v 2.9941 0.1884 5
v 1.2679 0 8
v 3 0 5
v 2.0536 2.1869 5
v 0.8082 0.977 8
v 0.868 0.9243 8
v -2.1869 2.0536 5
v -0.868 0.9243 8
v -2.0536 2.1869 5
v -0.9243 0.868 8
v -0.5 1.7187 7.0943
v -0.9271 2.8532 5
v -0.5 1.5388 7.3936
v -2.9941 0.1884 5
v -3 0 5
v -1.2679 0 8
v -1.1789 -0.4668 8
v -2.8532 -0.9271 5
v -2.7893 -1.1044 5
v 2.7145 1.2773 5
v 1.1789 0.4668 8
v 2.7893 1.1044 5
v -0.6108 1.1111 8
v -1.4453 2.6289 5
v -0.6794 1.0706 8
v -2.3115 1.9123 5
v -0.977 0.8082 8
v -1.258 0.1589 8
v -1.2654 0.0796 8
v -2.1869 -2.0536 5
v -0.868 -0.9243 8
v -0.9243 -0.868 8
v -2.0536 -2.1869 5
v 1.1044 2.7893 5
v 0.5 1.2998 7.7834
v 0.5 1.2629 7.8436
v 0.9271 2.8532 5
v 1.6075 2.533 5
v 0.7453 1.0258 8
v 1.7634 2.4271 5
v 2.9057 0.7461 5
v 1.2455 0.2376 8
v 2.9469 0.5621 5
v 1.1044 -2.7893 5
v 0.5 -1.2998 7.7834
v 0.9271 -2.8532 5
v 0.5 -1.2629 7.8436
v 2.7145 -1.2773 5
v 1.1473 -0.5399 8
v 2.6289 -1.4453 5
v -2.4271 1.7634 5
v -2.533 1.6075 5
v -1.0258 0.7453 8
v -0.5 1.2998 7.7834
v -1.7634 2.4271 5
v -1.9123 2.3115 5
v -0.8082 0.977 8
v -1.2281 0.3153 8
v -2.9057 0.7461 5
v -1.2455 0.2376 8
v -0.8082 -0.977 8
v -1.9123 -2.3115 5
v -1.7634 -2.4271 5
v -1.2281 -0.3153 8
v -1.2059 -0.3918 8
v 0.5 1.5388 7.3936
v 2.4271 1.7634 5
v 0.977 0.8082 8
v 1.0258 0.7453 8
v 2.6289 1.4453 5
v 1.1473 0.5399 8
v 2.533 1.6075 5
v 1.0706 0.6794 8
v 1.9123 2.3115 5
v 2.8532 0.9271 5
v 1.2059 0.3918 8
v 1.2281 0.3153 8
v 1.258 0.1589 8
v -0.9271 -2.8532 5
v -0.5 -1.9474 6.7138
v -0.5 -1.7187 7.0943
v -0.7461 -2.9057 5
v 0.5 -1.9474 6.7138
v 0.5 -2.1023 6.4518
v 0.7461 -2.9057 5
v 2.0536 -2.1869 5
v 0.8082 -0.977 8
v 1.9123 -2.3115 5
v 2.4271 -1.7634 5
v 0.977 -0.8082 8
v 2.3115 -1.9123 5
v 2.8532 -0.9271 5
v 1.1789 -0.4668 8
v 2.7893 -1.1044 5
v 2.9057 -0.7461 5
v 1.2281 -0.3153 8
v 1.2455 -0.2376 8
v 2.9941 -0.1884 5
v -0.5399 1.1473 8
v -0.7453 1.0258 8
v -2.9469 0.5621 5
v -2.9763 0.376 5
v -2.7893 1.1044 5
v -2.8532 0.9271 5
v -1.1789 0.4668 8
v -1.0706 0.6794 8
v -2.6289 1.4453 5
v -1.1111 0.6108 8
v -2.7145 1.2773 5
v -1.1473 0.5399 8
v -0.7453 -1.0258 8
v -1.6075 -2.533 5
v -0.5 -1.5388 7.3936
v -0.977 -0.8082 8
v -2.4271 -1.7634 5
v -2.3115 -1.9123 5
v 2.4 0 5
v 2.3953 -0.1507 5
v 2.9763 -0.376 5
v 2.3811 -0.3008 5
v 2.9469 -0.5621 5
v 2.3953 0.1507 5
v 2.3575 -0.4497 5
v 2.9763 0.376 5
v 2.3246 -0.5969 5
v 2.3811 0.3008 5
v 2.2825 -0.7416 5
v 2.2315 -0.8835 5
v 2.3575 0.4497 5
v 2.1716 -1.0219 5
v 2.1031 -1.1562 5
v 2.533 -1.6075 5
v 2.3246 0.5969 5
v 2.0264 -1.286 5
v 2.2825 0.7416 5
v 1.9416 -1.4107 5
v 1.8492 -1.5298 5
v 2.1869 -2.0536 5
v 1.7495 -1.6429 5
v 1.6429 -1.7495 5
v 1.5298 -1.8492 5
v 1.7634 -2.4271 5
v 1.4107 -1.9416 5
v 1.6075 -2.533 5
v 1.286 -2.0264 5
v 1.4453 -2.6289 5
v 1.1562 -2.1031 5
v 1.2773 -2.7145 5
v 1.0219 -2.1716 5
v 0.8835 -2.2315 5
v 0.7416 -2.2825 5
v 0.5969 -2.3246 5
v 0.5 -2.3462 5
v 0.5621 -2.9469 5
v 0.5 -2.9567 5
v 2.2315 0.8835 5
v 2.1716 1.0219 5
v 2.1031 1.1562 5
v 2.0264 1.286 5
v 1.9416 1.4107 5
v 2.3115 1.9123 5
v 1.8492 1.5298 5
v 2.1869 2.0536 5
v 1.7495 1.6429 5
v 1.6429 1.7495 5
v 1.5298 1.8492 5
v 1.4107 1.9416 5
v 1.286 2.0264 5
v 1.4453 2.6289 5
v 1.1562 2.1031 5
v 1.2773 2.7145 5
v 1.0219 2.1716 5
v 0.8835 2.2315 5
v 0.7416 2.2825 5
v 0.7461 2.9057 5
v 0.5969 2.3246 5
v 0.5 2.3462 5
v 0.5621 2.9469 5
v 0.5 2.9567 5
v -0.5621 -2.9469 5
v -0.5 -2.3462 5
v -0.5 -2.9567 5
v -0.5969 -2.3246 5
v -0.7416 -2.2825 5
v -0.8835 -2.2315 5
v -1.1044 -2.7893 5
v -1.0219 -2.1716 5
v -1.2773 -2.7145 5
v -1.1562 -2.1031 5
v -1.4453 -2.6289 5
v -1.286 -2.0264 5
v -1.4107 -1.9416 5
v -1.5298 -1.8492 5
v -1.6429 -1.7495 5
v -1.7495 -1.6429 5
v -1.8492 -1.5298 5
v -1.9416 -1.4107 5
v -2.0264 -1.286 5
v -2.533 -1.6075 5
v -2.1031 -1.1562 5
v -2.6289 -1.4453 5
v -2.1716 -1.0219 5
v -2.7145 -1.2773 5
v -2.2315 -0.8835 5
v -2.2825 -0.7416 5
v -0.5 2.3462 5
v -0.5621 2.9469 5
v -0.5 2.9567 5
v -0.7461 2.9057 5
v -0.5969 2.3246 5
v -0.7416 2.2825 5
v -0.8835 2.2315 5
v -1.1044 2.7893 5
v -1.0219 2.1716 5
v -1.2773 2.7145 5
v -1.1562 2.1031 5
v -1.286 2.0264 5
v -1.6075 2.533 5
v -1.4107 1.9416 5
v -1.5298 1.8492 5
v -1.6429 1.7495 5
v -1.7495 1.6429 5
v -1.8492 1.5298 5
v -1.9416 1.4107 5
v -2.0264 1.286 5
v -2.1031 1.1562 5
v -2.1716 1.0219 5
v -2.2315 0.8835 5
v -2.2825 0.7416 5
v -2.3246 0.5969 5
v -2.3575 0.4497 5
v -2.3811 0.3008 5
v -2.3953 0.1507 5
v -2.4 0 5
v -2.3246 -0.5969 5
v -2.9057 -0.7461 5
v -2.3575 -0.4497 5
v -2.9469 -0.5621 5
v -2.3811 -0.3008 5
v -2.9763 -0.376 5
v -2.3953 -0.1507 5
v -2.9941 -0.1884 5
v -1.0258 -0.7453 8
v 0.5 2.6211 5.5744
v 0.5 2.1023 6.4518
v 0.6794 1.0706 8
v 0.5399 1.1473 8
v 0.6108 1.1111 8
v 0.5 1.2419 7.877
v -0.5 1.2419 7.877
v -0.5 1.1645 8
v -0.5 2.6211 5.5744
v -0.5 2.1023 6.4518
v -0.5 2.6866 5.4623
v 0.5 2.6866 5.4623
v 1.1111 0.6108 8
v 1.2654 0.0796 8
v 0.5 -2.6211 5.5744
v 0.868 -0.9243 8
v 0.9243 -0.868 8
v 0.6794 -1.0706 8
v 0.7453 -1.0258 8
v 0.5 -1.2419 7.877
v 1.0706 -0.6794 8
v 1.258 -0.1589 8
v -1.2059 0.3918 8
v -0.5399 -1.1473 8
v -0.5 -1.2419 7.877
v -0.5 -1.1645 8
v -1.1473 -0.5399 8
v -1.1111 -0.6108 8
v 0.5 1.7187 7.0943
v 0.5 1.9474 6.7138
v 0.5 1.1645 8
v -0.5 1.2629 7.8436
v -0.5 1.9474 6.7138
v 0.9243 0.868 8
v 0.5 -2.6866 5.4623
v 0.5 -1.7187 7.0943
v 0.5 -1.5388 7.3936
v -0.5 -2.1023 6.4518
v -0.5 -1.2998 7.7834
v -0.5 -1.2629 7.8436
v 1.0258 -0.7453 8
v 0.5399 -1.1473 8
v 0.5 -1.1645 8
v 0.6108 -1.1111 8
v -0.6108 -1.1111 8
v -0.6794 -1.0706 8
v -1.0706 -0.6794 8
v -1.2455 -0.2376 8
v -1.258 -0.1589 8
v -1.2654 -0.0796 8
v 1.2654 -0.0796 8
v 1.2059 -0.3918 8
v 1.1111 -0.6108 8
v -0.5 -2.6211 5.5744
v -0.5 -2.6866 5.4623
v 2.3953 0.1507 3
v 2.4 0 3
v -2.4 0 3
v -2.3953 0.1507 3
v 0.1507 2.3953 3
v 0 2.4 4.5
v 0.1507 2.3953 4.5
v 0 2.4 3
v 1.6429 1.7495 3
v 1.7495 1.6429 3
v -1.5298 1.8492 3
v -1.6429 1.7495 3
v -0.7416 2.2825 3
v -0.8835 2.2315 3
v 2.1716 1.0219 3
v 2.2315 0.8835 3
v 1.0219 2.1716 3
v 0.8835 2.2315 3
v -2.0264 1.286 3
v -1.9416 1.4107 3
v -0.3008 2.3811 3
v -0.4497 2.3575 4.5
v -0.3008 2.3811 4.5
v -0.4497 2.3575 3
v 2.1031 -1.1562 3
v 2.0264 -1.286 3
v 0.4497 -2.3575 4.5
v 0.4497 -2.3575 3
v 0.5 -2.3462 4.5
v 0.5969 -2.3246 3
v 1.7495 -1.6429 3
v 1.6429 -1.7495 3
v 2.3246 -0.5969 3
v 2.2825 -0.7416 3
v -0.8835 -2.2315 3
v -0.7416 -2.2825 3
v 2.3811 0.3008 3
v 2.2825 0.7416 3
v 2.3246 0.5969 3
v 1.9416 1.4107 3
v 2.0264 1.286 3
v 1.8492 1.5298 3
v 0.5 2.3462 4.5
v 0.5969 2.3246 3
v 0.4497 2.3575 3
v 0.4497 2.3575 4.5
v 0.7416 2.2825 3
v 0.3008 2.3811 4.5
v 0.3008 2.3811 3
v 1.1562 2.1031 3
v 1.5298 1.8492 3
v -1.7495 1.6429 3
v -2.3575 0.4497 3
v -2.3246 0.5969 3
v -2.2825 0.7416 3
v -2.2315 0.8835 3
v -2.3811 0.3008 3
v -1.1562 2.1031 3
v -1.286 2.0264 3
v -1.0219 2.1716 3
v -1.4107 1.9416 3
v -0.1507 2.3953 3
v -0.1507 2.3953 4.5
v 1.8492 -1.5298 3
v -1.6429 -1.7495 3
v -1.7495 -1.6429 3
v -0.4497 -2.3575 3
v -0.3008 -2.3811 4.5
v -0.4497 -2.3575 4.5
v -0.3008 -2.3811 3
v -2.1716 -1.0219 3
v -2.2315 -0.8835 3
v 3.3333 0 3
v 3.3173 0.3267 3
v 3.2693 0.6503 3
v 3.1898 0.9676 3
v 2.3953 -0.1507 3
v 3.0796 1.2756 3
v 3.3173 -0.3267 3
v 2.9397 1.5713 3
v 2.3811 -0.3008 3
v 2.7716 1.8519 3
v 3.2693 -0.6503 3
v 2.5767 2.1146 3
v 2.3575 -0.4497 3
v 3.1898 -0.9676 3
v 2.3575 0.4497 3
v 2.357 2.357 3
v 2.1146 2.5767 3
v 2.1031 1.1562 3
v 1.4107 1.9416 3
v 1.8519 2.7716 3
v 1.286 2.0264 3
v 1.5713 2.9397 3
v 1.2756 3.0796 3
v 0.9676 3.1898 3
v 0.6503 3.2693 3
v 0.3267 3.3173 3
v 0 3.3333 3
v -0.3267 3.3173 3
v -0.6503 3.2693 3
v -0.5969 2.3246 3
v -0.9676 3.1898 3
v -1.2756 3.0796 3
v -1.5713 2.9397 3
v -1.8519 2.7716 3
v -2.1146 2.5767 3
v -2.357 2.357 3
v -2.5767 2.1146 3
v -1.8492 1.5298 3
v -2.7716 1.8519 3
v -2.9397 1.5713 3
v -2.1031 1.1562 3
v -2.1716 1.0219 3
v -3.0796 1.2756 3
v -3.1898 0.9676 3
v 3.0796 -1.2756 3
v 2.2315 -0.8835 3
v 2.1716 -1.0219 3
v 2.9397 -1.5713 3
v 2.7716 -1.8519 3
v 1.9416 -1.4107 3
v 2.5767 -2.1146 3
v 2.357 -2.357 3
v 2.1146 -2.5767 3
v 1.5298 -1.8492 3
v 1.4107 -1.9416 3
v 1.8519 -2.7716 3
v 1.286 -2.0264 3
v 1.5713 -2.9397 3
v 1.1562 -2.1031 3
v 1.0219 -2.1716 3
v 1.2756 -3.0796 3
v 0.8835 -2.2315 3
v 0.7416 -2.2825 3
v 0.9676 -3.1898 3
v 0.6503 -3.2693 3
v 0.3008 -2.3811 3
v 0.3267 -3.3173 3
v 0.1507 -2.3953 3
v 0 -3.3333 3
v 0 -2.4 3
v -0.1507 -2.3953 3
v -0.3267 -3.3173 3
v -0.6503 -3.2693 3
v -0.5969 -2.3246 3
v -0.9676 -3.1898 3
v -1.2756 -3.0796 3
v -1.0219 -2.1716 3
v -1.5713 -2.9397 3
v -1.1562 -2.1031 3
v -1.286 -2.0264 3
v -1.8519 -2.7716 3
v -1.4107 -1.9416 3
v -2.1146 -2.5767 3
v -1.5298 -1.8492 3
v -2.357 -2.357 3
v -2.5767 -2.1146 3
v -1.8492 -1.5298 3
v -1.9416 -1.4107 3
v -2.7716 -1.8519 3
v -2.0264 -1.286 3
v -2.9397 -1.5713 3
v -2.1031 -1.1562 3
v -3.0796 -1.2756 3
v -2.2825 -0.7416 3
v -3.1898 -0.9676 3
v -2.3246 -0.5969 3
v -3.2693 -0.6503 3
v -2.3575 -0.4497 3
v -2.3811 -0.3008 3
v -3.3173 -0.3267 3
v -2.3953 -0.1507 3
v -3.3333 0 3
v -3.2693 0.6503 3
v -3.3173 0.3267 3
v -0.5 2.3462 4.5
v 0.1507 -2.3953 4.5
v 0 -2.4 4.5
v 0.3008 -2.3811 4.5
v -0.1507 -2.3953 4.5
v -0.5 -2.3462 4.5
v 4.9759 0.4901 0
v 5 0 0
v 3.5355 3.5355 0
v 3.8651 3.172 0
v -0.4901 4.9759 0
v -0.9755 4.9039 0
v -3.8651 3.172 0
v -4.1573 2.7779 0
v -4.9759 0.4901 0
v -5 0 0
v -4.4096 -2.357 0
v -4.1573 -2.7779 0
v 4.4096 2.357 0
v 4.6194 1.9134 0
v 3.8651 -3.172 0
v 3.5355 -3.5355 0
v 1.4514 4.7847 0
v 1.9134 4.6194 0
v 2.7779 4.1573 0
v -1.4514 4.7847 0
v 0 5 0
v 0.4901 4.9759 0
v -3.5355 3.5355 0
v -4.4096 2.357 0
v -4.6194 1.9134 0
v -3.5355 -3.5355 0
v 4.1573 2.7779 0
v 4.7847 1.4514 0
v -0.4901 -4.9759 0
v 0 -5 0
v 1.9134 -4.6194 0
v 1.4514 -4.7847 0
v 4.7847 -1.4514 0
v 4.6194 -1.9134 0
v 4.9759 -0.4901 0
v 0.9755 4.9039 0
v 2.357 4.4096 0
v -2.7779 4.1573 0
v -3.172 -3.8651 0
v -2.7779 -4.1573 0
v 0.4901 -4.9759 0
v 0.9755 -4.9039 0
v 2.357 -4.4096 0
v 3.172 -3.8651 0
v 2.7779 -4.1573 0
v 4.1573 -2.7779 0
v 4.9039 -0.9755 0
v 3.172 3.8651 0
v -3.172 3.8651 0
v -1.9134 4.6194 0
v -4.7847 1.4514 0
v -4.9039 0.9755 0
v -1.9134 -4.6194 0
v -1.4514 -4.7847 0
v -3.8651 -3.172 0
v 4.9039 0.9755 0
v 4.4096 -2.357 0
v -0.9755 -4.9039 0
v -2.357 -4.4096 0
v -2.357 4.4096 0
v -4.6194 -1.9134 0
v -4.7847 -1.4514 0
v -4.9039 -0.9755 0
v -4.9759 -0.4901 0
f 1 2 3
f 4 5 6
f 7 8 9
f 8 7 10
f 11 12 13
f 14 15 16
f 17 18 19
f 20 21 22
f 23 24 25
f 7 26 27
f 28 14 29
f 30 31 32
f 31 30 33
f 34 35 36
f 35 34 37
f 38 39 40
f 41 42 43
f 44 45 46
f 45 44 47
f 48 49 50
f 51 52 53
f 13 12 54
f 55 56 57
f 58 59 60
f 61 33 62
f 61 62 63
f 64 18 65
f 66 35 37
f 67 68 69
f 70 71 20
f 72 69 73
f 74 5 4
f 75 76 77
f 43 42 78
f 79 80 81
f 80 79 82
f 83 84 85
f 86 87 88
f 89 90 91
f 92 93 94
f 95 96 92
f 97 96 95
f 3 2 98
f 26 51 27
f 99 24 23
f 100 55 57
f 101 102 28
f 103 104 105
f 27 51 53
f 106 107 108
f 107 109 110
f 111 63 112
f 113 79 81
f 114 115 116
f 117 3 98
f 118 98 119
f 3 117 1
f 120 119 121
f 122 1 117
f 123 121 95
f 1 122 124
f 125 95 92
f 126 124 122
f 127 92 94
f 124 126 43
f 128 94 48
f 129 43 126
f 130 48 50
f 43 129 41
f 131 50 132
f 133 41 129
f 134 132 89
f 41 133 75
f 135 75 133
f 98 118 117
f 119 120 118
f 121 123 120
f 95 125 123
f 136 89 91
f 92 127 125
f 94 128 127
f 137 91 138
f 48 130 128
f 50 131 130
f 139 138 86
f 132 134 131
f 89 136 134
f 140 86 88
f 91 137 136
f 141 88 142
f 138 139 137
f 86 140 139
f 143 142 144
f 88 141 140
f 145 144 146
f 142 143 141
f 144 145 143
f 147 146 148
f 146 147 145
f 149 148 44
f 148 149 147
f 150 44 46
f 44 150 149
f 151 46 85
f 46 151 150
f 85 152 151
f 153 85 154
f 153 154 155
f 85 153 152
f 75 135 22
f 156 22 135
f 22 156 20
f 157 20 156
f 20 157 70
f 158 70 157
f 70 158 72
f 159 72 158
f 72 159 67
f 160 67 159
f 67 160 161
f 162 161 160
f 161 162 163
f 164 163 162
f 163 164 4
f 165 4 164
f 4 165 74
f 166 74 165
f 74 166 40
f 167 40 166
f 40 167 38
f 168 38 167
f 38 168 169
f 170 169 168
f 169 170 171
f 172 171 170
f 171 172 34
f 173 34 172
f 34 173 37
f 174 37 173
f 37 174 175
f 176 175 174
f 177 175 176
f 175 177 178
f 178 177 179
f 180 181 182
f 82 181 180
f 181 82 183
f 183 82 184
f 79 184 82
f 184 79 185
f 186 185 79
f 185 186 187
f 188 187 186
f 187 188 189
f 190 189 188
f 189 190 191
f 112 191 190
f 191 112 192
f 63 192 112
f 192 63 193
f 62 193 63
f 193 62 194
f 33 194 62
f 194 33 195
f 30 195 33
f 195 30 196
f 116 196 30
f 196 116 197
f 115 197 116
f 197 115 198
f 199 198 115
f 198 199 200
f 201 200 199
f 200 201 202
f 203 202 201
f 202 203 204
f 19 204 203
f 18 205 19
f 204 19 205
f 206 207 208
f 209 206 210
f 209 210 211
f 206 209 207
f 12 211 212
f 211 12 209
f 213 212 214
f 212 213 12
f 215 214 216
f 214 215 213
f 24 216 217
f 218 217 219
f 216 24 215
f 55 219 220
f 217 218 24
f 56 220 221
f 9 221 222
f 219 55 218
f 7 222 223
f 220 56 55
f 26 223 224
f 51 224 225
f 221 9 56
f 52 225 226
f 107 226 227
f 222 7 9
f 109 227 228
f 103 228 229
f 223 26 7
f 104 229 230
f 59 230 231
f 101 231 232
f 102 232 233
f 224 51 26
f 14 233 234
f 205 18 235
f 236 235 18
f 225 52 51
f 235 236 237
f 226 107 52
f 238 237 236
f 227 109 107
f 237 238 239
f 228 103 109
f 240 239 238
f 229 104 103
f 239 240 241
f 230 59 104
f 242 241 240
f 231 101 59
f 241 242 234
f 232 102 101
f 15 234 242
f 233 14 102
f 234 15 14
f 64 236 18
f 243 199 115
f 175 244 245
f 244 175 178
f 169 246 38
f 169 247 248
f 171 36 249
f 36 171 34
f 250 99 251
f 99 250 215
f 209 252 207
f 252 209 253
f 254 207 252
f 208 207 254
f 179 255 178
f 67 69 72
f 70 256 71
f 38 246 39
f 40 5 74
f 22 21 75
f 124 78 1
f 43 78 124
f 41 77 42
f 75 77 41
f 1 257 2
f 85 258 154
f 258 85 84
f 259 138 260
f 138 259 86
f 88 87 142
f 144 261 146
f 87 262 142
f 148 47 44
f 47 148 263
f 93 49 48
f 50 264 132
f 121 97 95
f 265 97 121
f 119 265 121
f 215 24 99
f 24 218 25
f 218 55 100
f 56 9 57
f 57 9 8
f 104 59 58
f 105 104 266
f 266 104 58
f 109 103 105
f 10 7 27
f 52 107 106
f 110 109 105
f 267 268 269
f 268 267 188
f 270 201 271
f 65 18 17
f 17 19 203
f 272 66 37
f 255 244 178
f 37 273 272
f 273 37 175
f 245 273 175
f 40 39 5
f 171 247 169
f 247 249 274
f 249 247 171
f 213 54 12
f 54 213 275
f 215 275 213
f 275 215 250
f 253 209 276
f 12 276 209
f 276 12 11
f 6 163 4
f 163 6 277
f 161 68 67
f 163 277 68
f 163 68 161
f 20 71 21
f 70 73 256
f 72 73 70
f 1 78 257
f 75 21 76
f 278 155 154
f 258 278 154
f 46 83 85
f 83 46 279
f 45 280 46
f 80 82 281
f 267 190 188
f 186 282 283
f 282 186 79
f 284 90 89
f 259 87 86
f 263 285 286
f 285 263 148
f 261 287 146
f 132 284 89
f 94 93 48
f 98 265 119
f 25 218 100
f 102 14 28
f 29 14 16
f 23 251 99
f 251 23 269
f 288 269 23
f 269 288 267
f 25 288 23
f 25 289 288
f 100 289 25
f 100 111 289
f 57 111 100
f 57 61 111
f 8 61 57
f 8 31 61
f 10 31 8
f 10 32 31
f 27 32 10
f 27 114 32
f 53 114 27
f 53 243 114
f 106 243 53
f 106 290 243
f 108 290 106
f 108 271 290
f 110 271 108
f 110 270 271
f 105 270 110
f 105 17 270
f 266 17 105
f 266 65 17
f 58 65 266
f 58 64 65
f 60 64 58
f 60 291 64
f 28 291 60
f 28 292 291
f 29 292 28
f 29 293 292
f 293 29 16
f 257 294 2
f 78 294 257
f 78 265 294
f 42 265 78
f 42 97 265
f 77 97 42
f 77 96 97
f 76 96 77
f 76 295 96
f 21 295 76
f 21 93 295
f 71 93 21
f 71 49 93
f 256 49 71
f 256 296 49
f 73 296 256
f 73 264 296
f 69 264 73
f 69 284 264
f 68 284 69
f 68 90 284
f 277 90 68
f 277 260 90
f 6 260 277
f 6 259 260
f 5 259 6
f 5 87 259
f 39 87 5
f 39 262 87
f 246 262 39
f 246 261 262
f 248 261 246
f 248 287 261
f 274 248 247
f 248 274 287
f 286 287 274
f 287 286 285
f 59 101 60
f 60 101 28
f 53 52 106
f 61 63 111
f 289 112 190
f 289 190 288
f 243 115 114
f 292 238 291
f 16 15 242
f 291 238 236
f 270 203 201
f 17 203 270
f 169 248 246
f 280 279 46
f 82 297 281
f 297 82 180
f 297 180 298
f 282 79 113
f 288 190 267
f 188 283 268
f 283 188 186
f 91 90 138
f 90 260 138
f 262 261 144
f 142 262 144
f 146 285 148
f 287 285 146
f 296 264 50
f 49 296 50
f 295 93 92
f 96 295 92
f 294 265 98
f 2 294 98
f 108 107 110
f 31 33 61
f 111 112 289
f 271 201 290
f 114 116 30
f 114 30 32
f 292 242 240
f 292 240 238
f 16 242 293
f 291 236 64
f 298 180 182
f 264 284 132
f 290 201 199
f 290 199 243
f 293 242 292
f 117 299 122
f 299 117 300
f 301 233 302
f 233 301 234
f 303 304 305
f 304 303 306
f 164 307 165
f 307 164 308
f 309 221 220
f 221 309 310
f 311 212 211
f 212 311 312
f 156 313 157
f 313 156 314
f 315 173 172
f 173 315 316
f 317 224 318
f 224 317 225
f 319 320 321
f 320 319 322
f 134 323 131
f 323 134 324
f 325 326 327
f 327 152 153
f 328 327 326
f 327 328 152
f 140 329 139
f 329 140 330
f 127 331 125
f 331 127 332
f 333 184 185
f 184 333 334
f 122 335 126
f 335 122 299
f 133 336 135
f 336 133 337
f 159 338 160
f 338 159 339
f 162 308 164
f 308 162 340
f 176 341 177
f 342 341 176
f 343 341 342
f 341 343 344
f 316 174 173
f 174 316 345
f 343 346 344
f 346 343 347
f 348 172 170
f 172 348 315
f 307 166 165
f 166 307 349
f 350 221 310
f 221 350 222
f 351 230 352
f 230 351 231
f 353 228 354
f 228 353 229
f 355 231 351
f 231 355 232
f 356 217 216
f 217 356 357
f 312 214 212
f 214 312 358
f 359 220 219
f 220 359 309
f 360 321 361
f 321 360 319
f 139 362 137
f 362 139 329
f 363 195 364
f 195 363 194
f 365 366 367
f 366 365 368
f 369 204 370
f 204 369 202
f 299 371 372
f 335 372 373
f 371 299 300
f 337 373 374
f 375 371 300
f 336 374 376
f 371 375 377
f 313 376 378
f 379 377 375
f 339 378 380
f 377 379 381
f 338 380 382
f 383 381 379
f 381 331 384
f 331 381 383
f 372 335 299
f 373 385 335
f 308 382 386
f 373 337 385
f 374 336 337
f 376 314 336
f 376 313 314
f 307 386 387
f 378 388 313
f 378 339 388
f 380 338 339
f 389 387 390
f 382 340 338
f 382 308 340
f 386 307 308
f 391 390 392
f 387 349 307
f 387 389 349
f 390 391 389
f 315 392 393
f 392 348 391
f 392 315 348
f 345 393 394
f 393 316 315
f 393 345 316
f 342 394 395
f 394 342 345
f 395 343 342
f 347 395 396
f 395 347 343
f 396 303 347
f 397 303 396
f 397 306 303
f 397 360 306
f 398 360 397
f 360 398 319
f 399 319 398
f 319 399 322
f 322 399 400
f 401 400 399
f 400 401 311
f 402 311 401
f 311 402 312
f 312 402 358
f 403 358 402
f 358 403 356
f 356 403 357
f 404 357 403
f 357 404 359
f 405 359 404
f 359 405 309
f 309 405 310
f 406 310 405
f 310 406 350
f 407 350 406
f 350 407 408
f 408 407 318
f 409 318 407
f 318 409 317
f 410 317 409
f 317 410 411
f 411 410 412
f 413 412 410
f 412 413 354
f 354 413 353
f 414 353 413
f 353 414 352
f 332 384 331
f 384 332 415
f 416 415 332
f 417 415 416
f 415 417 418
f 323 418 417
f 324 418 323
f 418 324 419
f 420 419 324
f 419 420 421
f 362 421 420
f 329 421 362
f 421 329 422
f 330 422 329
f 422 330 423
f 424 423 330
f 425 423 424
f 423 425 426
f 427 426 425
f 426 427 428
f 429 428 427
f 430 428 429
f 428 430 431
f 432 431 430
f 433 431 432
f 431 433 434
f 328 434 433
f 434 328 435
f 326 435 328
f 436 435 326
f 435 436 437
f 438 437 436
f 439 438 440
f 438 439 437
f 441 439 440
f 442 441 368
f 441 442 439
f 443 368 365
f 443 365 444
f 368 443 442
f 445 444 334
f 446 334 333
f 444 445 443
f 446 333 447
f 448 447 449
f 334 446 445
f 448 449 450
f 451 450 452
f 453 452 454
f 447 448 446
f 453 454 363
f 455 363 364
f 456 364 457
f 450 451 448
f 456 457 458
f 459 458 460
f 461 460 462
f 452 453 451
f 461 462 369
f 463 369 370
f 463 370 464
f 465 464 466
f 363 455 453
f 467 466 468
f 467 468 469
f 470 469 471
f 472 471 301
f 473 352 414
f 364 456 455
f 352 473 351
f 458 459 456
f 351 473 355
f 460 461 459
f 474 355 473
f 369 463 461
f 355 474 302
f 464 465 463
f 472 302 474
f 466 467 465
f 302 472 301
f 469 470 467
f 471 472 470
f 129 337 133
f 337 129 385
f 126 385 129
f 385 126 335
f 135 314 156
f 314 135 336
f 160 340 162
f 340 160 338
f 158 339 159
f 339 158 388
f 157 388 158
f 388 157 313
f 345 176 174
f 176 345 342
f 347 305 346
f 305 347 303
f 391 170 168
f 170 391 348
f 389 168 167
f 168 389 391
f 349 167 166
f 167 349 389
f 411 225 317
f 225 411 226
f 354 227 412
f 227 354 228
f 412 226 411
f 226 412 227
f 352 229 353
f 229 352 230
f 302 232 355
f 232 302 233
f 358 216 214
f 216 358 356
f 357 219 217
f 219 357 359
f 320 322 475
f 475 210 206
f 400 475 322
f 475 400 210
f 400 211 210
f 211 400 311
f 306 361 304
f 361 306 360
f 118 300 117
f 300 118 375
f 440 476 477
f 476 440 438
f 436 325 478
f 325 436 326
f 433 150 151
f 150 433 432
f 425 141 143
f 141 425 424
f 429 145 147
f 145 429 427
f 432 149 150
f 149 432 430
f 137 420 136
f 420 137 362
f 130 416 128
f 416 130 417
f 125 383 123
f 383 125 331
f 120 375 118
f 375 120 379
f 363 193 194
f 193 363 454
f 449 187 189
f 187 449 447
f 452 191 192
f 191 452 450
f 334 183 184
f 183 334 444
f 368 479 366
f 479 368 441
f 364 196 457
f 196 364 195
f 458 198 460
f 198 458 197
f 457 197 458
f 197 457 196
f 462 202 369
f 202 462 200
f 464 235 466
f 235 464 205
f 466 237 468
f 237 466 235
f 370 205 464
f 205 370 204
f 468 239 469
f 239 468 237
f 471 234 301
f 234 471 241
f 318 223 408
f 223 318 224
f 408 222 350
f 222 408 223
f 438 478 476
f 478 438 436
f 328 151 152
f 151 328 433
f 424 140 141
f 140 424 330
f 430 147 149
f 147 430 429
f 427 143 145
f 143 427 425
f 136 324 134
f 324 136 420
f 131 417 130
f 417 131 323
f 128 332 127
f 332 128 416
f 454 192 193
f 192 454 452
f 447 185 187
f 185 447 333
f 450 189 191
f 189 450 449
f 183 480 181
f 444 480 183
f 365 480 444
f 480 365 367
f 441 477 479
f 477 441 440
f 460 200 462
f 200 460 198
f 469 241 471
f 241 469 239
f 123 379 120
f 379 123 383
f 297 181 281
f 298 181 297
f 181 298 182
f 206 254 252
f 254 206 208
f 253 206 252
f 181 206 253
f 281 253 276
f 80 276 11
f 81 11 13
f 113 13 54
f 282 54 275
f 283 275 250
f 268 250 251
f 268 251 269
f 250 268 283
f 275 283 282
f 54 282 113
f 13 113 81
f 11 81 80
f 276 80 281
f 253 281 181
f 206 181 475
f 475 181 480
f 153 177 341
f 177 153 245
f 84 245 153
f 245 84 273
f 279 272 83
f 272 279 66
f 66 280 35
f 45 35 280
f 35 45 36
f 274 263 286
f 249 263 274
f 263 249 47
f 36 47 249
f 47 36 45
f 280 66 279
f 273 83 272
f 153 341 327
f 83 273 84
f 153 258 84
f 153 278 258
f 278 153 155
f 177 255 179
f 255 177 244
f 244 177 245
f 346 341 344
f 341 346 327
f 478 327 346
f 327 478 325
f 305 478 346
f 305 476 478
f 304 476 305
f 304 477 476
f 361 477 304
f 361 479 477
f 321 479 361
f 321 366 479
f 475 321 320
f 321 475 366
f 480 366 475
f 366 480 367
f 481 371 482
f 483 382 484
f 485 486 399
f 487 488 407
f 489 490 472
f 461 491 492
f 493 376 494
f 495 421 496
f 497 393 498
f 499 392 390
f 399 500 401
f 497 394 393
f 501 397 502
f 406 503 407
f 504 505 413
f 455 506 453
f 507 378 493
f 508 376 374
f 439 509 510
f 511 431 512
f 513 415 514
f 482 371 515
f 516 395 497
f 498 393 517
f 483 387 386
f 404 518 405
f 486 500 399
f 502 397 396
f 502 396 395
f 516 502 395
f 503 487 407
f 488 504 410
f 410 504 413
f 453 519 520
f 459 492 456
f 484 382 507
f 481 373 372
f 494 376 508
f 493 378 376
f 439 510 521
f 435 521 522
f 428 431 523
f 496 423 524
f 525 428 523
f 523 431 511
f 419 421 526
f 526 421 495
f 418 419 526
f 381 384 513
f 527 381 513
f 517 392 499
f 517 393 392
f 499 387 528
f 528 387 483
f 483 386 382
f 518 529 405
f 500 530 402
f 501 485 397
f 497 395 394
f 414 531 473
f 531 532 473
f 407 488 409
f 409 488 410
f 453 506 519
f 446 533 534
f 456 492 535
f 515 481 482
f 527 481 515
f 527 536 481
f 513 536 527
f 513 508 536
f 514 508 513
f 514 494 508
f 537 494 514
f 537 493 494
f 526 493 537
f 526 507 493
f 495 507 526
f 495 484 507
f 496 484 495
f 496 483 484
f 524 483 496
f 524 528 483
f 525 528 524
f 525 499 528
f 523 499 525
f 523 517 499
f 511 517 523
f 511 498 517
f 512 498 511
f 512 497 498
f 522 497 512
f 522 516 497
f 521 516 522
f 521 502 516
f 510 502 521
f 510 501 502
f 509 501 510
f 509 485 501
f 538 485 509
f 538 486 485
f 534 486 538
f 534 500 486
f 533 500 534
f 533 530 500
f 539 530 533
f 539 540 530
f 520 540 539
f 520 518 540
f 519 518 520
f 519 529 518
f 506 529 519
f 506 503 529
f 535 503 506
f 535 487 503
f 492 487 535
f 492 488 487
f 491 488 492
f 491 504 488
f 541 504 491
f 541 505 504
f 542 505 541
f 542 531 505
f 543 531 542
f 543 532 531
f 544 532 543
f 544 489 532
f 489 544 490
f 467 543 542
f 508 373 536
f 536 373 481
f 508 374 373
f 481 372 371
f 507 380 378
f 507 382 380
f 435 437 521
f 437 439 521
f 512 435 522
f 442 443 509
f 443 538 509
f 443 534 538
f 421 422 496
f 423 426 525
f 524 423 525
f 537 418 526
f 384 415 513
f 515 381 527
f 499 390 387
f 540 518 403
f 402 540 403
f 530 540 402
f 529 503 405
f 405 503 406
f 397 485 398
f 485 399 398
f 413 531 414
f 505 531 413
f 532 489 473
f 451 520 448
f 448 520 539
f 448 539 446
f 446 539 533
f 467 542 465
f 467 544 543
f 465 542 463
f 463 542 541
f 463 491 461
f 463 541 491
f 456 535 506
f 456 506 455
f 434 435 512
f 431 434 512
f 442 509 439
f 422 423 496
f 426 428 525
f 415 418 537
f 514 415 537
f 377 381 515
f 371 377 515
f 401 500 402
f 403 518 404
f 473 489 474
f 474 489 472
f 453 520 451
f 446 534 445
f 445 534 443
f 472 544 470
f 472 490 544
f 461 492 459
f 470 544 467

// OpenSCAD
// file: ../snapfit.scad
// Adapted by Cameron K. Brooks on 2024-01-26 from the following source:
// https://www.thingiverse.com/thing:1799553/files

def_dia = 3; // Snap fit dia
def_lip = 0.75; // Snap fit def_lip (adds to dia)
def_col_h = def_dia * 2;
// def_col_h = 5;    // Snap fit Mini column height

def_slot_ratio = 0.7; // Slot ratio

def_col_tol = 0.1; // Column Tolerance
def_neg_tol = 0.5; // Tolerance for the Neagtive Snapfit

$fn = 100;

module snapfit(
  dia = def_dia,
  lip = def_lip,
  col_h = def_col_h,
  col_tol = def_col_tol,
  slot_ratio = def_slot_ratio,
  thickness = undef
) {
  z_fight = $preview ? 0.05 : 0.0; // Z offset for preview
  // Calculated Snapfit Parameters
  head_h = (dia + lip) / 2; // Snap fit height
  head_r1 = (dia + lip) / 2; // Snap fit radius 1
  head_r2 = calculateRadFromAngle(180 - 60, head_r1, head_h); // Snap fit radius 2
  col_r = dia / 2; // Mini column radius

  difference() {
    union() {
      translate([0, 0, col_h + head_h / 2])
        cylinder(r1=head_r1, r2=head_r2, h=head_h, center=true);
      // snapfit head

      translate([0, 0, col_h / 2]) cylinder(r=col_r - col_tol, h=col_h, center=true); // Mini column

      if (!is_undef(thickness)) {
        // optional snapfit foot
        translate([0, 0, col_h - head_h - thickness + (head_h) / 2]) cylinder(
            r1=col_r - col_tol, r2=col_r - col_tol + lip, h=head_h, center=true
          );
        // snapfit foot
      }
    }

    thick = is_undef(thickness) ? 0 : thickness; // Snapfit foot thickness
    translate([0, 0, (col_h + head_h + z_fight) - (slot_ratio * (col_h + head_h)) / 2]) cube(
        [head_r1 / 3, head_r1 * 2 + thick * 2, slot_ratio * (col_h + head_h)], center=true
      );
    // Cut in snap fit
  }
}

module snapfit_neg(
  dia = def_dia,
  lip = def_lip,
  col_h = def_col_h,
  neg_tol = def_neg_tol,
  slot_ratio = def_slot_ratio,
  thickness = undef,
  flip = false
) {

  // Calculated Snapfit Parameters
  head_h = (dia + lip) / 2; // Snap fit height
  head_r1 = (dia + lip) / 2; // Snap fit radius 1
  head_r2 = calculateRadFromAngle(180 - 60, head_r1, head_h); // Snap fit radius 2
  col_r = dia / 2; // Mini column radius

  rot = flip ? 180 : 0;
  z1 = is_undef(thickness) ? col_h : thickness;
  z_offs = rot ? 0 : (head_h + neg_tol + z1);

  rotate([rot, 0, 0]) translate([0, 0, -(head_h + neg_tol) + z_offs]) union() {
        translate([0, 0, (head_h + neg_tol) / 2]) cylinder(
            r1=head_r1 + neg_tol, r2=head_r2 + neg_tol,
            h=head_h + neg_tol, center=true
          );
        // snapfit head
        if (!is_undef(thickness)) {
          // optional snapfit foot
          translate([0, 0, -thickness / 2])
            cylinder(r=head_r1 - neg_tol / 2, h=thickness, center=true);
          // Mini column
        } else {
          translate([0, 0, -col_h / 2])
            cylinder(r=head_r1 - neg_tol / 2, h=col_h, center=true);
          // Mini column
        }
      }
}

// Function to calculate radius based on angle, initial radius, and height
function calculateRadFromAngle(angle, r, height) =
  let (norm_angle = angle % 90) (angle < 90) ? r + tan((abs(90 - norm_angle))) * height
  : r - tan((norm_angle)) * height;
// main file
use <../snapfit.scad>;

// Parameters
w = 10; // Base cylinder diameter
h = 3; // Base cylinder height

dia = 5; // Snap fit diameter
lip = 1; // Snap fit lip (adds to diameter)
col_h = 2; // Snap fit column height

slot_ratio = 0.7; // Snap fit slot ratio

col_tol = 0.1; // Snap fit column tolerance

$fn = 64; // Number of facets for the cylinder

z_fight = $preview ? 0.05 : 0.0; // Z offset for preview

union() {
  translate([0, 0, h / 2]) cylinder(r1=w / 2, r2 = w/3, h=h, center=true); // Main cylinder
  translate([0, 0, h ]) snapfit(dia, lip, col_h, col_tol, slot_ratio);
}
